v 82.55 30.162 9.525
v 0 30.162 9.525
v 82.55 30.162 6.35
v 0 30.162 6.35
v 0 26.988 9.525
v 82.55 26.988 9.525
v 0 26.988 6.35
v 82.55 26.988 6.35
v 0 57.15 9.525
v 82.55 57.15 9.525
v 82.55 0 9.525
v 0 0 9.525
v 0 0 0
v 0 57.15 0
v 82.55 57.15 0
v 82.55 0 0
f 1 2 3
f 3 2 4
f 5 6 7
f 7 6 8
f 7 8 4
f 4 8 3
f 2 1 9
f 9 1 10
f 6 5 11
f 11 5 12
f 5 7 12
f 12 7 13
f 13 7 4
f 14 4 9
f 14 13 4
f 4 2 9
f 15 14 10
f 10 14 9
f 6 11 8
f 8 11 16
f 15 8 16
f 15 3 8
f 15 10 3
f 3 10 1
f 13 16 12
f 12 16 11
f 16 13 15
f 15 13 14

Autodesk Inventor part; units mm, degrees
ref_plane "YZ Plane" through (0, 0, 0) normal (1, 0, 0) x (0, 1, 0)
ref_plane "XZ Plane" through (0, 0, 0) normal (0, 1, 0) x (-1, 0, 0)
ref_plane "XY Plane" through (0, 0, 0) normal (0, 0, 1) x (1, 0, 0)
sketch "Sketch1" plane through (0, 0, 0) normal (0, 0, 1) x (1, 0, 0)
  line L0 (0, 0) -> (82.55, 0)
  line L1 (82.55, 0) -> (82.55, 57.15)
  line L2 (82.55, 57.15) -> (0, 57.15)
  line L3 (0, 57.15) -> (0, 0)
  dimension "d0" = 57.15
  dimension "d1" = 82.55
extrude "Extrusion1" add sketch "Sketch1" along normal blind 9.525
sketch "Sketch2" plane through (0, 0, 9.525) normal (0, 0, 1) x (1, 0, 0)
  line L0 (-21.536, 28.575) -> (122.8285, 28.575) construction
  line L1 (82.55, 57.15) -> (0, 57.15) construction
  line L2 (0, 57.15) -> (0, 0) projected
  line L3 (82.55, 0) -> (82.55, 57.15) projected
  line L4 (0, 26.9875) -> (82.55, 26.9875)
  line L5 (82.55, 26.9875) -> (82.55, 30.1625)
  line L6 (82.55, 30.1625) -> (0, 30.1625)
  line L7 (0, 30.1625) -> (0, 26.9875)
  dimension "d4" = 28.575
  dimension "d5" = 1.5875
  dimension "d6" = 1.5875
extrude "Extrusion2" cut sketch "Sketch2" against normal blind 3.175
properties part number "000106"
